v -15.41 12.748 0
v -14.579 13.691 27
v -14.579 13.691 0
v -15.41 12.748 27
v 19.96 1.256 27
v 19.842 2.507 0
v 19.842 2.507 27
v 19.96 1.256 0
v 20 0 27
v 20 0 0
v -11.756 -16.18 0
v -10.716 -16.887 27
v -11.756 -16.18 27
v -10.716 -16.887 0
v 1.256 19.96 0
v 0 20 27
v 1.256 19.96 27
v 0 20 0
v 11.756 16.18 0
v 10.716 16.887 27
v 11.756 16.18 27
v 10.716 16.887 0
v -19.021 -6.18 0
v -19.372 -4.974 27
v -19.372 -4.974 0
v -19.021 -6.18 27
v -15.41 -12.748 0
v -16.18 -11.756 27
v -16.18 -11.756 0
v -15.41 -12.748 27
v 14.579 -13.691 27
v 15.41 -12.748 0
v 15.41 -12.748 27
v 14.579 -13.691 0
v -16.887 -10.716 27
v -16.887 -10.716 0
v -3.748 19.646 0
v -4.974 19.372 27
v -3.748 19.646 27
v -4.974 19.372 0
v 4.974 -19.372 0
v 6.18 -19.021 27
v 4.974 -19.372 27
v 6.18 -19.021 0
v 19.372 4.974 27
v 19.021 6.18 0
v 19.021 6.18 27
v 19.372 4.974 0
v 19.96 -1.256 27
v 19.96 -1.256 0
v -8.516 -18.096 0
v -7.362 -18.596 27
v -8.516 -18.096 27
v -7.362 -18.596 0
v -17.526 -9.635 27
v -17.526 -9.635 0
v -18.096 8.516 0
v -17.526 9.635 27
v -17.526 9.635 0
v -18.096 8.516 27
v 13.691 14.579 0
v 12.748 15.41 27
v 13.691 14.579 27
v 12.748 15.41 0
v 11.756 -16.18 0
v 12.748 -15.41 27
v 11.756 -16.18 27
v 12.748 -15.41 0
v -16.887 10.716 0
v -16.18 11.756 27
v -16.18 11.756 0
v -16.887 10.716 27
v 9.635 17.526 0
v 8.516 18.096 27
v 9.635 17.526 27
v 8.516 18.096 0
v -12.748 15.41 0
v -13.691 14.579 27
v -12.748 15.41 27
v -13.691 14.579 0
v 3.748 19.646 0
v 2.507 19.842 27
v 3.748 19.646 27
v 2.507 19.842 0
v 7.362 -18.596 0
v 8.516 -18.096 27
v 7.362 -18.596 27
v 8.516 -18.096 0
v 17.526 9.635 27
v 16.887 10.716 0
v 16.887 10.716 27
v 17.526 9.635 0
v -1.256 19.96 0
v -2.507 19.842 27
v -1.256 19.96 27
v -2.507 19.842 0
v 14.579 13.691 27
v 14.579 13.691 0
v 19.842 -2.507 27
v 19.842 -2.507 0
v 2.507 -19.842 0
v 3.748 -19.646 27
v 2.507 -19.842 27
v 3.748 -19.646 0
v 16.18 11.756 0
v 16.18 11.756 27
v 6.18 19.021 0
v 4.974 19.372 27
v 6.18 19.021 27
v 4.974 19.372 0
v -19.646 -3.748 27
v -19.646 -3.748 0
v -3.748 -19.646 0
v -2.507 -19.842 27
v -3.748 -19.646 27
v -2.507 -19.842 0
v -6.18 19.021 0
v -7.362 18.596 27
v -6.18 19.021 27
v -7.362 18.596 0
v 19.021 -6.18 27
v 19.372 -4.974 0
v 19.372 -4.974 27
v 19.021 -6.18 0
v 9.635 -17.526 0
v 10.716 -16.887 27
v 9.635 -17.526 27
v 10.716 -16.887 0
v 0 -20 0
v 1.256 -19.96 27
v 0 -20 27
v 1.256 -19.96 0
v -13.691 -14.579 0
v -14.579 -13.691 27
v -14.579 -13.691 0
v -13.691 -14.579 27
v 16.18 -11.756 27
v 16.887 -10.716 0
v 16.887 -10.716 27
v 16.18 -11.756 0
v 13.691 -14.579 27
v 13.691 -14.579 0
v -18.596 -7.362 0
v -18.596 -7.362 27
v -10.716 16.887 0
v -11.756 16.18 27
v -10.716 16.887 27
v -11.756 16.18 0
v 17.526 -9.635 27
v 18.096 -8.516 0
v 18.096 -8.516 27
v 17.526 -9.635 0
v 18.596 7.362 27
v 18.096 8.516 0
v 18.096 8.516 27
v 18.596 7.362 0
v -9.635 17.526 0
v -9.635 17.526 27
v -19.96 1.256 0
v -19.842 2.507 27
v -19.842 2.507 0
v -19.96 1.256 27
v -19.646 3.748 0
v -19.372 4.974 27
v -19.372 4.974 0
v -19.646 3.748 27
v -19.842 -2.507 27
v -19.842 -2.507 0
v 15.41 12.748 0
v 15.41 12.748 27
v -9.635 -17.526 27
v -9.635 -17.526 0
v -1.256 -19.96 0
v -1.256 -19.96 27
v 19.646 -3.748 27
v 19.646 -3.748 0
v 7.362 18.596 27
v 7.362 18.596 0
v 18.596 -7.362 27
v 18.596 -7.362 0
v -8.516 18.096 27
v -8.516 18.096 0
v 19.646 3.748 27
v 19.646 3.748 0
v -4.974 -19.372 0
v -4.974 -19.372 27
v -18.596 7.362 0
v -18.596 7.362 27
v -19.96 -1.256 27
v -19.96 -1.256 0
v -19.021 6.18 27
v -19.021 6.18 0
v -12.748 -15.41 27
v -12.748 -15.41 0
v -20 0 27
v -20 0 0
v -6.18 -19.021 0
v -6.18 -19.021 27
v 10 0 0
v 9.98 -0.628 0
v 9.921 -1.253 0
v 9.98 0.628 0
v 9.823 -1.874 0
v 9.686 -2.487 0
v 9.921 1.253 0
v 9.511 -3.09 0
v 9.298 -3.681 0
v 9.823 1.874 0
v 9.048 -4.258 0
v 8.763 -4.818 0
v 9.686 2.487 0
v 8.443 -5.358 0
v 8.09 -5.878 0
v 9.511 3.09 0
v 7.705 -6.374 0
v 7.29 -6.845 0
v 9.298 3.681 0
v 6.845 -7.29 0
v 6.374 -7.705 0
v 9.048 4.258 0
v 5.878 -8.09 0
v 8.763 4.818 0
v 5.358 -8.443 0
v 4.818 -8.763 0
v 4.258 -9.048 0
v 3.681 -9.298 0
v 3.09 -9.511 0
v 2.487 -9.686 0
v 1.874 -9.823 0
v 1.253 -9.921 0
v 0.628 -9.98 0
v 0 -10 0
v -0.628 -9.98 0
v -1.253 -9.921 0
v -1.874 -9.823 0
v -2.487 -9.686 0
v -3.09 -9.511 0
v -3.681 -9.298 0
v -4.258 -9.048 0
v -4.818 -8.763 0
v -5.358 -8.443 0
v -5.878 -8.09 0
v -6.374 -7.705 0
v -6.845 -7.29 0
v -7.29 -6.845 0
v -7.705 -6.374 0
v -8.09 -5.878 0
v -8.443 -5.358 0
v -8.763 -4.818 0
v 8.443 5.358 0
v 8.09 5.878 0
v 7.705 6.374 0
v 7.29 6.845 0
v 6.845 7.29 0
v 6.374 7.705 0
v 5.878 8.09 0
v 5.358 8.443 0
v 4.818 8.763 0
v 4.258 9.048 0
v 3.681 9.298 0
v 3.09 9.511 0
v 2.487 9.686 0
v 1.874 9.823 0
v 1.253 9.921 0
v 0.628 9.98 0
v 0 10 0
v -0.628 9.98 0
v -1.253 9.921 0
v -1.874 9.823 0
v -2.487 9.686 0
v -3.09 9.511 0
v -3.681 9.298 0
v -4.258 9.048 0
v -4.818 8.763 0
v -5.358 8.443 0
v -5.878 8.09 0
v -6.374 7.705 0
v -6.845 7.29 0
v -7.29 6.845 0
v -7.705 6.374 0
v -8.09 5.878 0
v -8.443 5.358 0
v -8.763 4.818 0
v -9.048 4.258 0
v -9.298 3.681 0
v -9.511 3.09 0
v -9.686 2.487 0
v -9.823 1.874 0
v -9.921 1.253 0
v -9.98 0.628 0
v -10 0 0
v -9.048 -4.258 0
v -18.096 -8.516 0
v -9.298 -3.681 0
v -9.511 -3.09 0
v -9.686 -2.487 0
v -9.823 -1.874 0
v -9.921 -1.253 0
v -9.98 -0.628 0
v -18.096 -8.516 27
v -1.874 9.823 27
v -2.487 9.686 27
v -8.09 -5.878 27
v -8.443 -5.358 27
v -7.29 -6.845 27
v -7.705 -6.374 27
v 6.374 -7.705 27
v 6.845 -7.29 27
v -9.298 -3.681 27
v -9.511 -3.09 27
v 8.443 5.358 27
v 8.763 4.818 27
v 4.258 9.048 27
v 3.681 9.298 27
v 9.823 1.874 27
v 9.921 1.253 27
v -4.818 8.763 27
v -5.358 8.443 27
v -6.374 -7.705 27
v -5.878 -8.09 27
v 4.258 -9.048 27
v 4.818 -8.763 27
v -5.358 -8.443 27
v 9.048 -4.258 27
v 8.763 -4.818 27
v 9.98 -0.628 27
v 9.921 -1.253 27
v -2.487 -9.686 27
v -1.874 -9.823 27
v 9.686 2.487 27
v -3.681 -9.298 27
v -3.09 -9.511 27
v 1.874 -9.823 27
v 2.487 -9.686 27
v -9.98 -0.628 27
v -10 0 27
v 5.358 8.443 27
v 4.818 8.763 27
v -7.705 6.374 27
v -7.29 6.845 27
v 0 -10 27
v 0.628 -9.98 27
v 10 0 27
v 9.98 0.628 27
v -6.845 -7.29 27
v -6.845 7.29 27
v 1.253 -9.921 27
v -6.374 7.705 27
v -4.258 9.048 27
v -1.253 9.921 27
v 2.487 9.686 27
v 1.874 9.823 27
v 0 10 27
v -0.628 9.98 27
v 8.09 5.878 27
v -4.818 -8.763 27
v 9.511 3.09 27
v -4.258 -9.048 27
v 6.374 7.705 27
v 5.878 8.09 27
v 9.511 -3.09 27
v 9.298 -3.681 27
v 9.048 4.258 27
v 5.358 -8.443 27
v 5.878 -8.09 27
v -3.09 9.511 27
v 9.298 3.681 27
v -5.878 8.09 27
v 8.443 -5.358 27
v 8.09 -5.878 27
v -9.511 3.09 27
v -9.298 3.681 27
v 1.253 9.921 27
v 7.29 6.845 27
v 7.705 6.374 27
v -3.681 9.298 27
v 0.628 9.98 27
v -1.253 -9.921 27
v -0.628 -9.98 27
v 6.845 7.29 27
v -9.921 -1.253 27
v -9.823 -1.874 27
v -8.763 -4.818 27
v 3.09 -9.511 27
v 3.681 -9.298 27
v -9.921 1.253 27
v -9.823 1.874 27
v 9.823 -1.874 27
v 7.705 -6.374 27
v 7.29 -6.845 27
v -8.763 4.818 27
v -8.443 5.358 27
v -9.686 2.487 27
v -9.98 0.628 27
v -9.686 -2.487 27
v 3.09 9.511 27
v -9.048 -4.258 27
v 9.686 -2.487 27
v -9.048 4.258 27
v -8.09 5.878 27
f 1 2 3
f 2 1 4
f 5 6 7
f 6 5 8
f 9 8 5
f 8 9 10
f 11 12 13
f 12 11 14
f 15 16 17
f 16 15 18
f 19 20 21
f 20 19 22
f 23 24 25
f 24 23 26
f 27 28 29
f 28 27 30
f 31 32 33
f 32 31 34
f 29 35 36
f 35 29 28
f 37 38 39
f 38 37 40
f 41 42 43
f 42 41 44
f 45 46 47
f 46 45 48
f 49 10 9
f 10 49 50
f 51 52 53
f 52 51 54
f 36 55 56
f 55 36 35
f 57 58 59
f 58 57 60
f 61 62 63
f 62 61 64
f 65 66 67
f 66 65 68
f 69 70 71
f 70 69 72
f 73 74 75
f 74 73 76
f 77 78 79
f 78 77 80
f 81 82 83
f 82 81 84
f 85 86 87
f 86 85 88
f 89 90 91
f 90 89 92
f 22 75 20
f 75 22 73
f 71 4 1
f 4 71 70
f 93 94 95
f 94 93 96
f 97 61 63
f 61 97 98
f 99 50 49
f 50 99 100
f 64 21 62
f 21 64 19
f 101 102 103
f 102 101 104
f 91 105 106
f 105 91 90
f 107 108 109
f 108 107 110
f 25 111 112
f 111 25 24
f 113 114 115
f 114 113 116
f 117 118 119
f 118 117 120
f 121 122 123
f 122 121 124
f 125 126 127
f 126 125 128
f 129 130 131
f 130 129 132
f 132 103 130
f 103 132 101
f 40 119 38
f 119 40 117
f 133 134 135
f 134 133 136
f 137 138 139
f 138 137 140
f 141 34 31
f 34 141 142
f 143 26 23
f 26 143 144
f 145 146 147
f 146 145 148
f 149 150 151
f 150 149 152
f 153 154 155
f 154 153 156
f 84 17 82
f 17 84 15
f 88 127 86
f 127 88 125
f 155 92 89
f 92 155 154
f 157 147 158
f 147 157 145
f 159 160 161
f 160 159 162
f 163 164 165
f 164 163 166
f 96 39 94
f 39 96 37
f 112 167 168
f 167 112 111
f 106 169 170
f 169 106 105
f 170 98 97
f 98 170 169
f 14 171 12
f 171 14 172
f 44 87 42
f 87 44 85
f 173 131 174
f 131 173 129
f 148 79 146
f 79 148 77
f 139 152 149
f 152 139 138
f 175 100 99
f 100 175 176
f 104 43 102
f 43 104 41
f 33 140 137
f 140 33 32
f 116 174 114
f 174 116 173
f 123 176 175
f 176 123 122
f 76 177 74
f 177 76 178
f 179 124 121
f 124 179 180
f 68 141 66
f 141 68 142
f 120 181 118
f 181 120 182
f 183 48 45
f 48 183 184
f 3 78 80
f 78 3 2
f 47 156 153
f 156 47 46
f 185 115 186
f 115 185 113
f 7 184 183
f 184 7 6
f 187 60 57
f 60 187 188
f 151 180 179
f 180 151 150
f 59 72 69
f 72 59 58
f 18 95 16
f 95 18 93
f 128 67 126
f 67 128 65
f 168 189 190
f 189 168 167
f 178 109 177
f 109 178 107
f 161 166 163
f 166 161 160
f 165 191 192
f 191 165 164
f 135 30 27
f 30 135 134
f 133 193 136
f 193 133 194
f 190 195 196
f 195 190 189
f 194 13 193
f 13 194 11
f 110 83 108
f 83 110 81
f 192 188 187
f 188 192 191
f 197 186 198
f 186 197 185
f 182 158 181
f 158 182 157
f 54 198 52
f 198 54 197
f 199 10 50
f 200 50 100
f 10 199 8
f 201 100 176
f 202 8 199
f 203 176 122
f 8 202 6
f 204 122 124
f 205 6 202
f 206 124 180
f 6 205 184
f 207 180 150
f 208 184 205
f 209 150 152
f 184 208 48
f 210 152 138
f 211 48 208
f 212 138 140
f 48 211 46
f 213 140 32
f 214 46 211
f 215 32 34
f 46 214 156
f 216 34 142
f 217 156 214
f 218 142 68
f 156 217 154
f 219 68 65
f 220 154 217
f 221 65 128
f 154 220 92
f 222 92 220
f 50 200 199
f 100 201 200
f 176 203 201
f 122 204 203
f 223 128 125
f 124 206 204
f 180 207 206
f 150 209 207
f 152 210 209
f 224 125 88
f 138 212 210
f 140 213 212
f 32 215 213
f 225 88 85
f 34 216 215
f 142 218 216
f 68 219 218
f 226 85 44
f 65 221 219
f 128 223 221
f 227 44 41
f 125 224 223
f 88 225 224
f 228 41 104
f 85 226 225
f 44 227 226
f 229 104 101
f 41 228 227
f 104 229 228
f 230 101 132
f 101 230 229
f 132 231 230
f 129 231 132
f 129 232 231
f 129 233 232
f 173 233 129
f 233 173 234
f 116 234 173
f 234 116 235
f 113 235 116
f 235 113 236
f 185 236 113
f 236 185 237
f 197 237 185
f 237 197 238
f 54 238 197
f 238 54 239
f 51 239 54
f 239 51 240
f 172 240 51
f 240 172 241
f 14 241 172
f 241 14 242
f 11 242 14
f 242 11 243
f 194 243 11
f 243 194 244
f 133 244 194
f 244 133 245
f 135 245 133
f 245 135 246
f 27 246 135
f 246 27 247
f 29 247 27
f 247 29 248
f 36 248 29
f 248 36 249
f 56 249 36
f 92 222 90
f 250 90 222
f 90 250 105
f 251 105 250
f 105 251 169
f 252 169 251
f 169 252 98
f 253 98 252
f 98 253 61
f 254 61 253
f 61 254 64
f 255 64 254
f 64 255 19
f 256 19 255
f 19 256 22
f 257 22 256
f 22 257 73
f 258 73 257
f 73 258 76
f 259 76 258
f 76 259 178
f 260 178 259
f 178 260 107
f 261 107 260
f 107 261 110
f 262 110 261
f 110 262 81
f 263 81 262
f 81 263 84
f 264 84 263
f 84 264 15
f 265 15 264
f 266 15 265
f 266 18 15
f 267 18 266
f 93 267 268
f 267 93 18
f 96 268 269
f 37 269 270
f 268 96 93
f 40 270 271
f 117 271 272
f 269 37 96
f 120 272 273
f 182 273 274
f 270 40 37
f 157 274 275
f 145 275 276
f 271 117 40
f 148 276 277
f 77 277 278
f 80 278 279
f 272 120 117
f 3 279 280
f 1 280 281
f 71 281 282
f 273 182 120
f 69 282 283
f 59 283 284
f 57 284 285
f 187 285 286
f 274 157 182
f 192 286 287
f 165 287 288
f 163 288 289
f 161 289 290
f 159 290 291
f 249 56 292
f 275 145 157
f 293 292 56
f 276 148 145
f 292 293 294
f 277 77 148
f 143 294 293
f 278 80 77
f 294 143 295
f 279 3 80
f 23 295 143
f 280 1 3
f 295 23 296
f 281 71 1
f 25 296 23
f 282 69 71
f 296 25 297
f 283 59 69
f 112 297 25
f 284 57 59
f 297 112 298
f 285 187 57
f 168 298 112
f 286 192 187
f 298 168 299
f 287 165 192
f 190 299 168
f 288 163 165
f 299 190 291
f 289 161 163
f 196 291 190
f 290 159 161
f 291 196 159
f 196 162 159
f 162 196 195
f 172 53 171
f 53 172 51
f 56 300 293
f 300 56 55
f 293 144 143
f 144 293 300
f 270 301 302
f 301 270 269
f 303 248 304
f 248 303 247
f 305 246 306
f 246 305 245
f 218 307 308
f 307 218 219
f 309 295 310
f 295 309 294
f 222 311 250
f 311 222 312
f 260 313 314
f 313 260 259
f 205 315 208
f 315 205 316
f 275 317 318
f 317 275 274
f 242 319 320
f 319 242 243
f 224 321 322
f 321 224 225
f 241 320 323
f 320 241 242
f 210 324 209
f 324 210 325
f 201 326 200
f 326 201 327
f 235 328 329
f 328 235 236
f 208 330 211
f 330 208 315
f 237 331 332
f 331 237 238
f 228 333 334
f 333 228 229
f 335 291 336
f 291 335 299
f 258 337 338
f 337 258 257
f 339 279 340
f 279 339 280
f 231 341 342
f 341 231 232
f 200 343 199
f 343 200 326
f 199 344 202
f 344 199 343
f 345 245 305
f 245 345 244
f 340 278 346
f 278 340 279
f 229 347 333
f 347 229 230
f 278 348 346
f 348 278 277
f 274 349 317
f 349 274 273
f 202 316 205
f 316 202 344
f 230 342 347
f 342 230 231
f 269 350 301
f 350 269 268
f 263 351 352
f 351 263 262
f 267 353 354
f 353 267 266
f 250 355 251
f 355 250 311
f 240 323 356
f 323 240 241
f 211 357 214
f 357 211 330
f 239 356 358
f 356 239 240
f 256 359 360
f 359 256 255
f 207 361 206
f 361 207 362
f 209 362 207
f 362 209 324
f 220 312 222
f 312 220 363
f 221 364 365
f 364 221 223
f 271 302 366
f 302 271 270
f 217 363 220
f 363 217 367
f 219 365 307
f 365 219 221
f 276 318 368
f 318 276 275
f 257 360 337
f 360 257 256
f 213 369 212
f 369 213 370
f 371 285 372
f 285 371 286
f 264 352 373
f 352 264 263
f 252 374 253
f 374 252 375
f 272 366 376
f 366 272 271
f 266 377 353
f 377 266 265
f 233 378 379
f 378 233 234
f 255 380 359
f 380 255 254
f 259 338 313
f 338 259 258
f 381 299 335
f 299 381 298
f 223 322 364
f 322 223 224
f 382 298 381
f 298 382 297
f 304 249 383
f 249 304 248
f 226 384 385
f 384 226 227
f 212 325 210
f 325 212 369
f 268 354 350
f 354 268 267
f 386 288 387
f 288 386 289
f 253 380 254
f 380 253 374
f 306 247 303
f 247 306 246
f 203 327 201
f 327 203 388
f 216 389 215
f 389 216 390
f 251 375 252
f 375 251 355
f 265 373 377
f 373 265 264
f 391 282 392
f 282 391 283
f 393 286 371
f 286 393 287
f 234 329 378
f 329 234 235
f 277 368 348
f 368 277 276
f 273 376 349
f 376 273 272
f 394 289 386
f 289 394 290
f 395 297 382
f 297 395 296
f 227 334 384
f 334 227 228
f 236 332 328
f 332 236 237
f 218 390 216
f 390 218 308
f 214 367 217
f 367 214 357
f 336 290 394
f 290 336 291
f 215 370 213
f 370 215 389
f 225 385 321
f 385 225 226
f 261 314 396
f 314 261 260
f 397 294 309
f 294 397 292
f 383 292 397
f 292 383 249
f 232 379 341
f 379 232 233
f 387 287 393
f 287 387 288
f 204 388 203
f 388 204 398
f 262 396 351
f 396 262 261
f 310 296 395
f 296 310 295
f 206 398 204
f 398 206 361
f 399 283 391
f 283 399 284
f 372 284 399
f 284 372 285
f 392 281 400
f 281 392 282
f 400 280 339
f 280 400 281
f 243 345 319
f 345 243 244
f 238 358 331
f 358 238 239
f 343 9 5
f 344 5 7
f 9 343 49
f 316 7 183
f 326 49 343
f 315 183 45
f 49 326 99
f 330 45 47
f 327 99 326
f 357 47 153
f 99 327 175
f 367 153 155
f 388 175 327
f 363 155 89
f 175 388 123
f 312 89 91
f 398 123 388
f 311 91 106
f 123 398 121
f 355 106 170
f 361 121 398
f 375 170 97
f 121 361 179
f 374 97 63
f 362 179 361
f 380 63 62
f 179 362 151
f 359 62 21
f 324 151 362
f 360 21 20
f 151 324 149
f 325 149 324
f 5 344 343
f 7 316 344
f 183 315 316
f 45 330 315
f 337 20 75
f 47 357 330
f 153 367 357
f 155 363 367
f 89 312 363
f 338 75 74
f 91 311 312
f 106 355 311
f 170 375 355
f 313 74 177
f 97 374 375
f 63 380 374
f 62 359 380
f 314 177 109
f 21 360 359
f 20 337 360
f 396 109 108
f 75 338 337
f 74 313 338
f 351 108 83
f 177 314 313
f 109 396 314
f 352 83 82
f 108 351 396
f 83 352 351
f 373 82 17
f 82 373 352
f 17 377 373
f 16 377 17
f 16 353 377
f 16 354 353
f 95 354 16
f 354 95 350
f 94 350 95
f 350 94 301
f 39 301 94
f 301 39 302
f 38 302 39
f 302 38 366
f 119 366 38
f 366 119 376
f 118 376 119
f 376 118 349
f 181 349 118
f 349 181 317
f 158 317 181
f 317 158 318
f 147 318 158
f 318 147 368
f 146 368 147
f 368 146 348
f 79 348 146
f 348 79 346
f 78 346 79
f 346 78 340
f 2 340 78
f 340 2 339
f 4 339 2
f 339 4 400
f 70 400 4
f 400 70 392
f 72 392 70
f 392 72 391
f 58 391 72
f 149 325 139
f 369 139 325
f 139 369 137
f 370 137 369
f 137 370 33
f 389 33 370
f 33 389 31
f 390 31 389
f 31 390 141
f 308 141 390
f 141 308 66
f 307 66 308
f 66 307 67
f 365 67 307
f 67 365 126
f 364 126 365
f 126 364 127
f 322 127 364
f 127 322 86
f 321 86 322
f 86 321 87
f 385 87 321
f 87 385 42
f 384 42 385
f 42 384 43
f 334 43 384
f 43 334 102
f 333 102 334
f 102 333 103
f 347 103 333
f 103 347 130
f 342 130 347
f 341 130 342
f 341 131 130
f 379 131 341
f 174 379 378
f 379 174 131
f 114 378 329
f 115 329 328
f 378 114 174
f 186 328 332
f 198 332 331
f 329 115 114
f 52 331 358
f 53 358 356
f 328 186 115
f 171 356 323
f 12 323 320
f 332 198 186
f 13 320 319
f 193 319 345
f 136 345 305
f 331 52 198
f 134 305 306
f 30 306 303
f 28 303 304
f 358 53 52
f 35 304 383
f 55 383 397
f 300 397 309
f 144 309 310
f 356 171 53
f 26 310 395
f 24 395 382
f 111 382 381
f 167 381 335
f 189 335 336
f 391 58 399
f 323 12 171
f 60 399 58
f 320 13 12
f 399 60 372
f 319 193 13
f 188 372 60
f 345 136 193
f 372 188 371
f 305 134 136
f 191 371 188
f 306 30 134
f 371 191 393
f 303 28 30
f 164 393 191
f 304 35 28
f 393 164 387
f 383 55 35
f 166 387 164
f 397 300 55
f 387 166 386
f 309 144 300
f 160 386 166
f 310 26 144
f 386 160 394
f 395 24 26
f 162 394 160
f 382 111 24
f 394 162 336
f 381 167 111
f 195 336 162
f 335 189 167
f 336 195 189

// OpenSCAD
// Parameters
outer_diameter = 40;
inner_diameter = 20;

// Heights of each spacer ring
heights = [3, 5, 4, 4, 6, 5];

// Function to create a spacer ring
module spacer_ring(height) {
    difference() {
        cylinder(h = height, d = outer_diameter, $fn = 100);
        translate([0, 0, -1])  // Slightly lower to ensure clean subtraction
            cylinder(h = height + 2, d = inner_diameter, $fn = 100);
    }
}

// Stack the spacer rings
translate([0, 0, 0]) spacer_ring(heights[0]); // spacer_ring_1
translate([0, 0, heights[0]]) spacer_ring(heights[1]); // spacer_ring_2
translate([0, 0, heights[0] + heights[1]]) spacer_ring(heights[2]); // spacer_ring_3
translate([0, 0, heights[0] + heights[1] + heights[2]]) spacer_ring(heights[3]); // spacer_ring_4
translate([0, 0, heights[0] + heights[1] + heights[2] + heights[3]]) spacer_ring(heights[4]); // spacer_ring_5
translate([0, 0, heights[0] + heights[1] + heights[2] + heights[3] + heights[4]]) spacer_ring(heights[5]); // spacer_ring_6
